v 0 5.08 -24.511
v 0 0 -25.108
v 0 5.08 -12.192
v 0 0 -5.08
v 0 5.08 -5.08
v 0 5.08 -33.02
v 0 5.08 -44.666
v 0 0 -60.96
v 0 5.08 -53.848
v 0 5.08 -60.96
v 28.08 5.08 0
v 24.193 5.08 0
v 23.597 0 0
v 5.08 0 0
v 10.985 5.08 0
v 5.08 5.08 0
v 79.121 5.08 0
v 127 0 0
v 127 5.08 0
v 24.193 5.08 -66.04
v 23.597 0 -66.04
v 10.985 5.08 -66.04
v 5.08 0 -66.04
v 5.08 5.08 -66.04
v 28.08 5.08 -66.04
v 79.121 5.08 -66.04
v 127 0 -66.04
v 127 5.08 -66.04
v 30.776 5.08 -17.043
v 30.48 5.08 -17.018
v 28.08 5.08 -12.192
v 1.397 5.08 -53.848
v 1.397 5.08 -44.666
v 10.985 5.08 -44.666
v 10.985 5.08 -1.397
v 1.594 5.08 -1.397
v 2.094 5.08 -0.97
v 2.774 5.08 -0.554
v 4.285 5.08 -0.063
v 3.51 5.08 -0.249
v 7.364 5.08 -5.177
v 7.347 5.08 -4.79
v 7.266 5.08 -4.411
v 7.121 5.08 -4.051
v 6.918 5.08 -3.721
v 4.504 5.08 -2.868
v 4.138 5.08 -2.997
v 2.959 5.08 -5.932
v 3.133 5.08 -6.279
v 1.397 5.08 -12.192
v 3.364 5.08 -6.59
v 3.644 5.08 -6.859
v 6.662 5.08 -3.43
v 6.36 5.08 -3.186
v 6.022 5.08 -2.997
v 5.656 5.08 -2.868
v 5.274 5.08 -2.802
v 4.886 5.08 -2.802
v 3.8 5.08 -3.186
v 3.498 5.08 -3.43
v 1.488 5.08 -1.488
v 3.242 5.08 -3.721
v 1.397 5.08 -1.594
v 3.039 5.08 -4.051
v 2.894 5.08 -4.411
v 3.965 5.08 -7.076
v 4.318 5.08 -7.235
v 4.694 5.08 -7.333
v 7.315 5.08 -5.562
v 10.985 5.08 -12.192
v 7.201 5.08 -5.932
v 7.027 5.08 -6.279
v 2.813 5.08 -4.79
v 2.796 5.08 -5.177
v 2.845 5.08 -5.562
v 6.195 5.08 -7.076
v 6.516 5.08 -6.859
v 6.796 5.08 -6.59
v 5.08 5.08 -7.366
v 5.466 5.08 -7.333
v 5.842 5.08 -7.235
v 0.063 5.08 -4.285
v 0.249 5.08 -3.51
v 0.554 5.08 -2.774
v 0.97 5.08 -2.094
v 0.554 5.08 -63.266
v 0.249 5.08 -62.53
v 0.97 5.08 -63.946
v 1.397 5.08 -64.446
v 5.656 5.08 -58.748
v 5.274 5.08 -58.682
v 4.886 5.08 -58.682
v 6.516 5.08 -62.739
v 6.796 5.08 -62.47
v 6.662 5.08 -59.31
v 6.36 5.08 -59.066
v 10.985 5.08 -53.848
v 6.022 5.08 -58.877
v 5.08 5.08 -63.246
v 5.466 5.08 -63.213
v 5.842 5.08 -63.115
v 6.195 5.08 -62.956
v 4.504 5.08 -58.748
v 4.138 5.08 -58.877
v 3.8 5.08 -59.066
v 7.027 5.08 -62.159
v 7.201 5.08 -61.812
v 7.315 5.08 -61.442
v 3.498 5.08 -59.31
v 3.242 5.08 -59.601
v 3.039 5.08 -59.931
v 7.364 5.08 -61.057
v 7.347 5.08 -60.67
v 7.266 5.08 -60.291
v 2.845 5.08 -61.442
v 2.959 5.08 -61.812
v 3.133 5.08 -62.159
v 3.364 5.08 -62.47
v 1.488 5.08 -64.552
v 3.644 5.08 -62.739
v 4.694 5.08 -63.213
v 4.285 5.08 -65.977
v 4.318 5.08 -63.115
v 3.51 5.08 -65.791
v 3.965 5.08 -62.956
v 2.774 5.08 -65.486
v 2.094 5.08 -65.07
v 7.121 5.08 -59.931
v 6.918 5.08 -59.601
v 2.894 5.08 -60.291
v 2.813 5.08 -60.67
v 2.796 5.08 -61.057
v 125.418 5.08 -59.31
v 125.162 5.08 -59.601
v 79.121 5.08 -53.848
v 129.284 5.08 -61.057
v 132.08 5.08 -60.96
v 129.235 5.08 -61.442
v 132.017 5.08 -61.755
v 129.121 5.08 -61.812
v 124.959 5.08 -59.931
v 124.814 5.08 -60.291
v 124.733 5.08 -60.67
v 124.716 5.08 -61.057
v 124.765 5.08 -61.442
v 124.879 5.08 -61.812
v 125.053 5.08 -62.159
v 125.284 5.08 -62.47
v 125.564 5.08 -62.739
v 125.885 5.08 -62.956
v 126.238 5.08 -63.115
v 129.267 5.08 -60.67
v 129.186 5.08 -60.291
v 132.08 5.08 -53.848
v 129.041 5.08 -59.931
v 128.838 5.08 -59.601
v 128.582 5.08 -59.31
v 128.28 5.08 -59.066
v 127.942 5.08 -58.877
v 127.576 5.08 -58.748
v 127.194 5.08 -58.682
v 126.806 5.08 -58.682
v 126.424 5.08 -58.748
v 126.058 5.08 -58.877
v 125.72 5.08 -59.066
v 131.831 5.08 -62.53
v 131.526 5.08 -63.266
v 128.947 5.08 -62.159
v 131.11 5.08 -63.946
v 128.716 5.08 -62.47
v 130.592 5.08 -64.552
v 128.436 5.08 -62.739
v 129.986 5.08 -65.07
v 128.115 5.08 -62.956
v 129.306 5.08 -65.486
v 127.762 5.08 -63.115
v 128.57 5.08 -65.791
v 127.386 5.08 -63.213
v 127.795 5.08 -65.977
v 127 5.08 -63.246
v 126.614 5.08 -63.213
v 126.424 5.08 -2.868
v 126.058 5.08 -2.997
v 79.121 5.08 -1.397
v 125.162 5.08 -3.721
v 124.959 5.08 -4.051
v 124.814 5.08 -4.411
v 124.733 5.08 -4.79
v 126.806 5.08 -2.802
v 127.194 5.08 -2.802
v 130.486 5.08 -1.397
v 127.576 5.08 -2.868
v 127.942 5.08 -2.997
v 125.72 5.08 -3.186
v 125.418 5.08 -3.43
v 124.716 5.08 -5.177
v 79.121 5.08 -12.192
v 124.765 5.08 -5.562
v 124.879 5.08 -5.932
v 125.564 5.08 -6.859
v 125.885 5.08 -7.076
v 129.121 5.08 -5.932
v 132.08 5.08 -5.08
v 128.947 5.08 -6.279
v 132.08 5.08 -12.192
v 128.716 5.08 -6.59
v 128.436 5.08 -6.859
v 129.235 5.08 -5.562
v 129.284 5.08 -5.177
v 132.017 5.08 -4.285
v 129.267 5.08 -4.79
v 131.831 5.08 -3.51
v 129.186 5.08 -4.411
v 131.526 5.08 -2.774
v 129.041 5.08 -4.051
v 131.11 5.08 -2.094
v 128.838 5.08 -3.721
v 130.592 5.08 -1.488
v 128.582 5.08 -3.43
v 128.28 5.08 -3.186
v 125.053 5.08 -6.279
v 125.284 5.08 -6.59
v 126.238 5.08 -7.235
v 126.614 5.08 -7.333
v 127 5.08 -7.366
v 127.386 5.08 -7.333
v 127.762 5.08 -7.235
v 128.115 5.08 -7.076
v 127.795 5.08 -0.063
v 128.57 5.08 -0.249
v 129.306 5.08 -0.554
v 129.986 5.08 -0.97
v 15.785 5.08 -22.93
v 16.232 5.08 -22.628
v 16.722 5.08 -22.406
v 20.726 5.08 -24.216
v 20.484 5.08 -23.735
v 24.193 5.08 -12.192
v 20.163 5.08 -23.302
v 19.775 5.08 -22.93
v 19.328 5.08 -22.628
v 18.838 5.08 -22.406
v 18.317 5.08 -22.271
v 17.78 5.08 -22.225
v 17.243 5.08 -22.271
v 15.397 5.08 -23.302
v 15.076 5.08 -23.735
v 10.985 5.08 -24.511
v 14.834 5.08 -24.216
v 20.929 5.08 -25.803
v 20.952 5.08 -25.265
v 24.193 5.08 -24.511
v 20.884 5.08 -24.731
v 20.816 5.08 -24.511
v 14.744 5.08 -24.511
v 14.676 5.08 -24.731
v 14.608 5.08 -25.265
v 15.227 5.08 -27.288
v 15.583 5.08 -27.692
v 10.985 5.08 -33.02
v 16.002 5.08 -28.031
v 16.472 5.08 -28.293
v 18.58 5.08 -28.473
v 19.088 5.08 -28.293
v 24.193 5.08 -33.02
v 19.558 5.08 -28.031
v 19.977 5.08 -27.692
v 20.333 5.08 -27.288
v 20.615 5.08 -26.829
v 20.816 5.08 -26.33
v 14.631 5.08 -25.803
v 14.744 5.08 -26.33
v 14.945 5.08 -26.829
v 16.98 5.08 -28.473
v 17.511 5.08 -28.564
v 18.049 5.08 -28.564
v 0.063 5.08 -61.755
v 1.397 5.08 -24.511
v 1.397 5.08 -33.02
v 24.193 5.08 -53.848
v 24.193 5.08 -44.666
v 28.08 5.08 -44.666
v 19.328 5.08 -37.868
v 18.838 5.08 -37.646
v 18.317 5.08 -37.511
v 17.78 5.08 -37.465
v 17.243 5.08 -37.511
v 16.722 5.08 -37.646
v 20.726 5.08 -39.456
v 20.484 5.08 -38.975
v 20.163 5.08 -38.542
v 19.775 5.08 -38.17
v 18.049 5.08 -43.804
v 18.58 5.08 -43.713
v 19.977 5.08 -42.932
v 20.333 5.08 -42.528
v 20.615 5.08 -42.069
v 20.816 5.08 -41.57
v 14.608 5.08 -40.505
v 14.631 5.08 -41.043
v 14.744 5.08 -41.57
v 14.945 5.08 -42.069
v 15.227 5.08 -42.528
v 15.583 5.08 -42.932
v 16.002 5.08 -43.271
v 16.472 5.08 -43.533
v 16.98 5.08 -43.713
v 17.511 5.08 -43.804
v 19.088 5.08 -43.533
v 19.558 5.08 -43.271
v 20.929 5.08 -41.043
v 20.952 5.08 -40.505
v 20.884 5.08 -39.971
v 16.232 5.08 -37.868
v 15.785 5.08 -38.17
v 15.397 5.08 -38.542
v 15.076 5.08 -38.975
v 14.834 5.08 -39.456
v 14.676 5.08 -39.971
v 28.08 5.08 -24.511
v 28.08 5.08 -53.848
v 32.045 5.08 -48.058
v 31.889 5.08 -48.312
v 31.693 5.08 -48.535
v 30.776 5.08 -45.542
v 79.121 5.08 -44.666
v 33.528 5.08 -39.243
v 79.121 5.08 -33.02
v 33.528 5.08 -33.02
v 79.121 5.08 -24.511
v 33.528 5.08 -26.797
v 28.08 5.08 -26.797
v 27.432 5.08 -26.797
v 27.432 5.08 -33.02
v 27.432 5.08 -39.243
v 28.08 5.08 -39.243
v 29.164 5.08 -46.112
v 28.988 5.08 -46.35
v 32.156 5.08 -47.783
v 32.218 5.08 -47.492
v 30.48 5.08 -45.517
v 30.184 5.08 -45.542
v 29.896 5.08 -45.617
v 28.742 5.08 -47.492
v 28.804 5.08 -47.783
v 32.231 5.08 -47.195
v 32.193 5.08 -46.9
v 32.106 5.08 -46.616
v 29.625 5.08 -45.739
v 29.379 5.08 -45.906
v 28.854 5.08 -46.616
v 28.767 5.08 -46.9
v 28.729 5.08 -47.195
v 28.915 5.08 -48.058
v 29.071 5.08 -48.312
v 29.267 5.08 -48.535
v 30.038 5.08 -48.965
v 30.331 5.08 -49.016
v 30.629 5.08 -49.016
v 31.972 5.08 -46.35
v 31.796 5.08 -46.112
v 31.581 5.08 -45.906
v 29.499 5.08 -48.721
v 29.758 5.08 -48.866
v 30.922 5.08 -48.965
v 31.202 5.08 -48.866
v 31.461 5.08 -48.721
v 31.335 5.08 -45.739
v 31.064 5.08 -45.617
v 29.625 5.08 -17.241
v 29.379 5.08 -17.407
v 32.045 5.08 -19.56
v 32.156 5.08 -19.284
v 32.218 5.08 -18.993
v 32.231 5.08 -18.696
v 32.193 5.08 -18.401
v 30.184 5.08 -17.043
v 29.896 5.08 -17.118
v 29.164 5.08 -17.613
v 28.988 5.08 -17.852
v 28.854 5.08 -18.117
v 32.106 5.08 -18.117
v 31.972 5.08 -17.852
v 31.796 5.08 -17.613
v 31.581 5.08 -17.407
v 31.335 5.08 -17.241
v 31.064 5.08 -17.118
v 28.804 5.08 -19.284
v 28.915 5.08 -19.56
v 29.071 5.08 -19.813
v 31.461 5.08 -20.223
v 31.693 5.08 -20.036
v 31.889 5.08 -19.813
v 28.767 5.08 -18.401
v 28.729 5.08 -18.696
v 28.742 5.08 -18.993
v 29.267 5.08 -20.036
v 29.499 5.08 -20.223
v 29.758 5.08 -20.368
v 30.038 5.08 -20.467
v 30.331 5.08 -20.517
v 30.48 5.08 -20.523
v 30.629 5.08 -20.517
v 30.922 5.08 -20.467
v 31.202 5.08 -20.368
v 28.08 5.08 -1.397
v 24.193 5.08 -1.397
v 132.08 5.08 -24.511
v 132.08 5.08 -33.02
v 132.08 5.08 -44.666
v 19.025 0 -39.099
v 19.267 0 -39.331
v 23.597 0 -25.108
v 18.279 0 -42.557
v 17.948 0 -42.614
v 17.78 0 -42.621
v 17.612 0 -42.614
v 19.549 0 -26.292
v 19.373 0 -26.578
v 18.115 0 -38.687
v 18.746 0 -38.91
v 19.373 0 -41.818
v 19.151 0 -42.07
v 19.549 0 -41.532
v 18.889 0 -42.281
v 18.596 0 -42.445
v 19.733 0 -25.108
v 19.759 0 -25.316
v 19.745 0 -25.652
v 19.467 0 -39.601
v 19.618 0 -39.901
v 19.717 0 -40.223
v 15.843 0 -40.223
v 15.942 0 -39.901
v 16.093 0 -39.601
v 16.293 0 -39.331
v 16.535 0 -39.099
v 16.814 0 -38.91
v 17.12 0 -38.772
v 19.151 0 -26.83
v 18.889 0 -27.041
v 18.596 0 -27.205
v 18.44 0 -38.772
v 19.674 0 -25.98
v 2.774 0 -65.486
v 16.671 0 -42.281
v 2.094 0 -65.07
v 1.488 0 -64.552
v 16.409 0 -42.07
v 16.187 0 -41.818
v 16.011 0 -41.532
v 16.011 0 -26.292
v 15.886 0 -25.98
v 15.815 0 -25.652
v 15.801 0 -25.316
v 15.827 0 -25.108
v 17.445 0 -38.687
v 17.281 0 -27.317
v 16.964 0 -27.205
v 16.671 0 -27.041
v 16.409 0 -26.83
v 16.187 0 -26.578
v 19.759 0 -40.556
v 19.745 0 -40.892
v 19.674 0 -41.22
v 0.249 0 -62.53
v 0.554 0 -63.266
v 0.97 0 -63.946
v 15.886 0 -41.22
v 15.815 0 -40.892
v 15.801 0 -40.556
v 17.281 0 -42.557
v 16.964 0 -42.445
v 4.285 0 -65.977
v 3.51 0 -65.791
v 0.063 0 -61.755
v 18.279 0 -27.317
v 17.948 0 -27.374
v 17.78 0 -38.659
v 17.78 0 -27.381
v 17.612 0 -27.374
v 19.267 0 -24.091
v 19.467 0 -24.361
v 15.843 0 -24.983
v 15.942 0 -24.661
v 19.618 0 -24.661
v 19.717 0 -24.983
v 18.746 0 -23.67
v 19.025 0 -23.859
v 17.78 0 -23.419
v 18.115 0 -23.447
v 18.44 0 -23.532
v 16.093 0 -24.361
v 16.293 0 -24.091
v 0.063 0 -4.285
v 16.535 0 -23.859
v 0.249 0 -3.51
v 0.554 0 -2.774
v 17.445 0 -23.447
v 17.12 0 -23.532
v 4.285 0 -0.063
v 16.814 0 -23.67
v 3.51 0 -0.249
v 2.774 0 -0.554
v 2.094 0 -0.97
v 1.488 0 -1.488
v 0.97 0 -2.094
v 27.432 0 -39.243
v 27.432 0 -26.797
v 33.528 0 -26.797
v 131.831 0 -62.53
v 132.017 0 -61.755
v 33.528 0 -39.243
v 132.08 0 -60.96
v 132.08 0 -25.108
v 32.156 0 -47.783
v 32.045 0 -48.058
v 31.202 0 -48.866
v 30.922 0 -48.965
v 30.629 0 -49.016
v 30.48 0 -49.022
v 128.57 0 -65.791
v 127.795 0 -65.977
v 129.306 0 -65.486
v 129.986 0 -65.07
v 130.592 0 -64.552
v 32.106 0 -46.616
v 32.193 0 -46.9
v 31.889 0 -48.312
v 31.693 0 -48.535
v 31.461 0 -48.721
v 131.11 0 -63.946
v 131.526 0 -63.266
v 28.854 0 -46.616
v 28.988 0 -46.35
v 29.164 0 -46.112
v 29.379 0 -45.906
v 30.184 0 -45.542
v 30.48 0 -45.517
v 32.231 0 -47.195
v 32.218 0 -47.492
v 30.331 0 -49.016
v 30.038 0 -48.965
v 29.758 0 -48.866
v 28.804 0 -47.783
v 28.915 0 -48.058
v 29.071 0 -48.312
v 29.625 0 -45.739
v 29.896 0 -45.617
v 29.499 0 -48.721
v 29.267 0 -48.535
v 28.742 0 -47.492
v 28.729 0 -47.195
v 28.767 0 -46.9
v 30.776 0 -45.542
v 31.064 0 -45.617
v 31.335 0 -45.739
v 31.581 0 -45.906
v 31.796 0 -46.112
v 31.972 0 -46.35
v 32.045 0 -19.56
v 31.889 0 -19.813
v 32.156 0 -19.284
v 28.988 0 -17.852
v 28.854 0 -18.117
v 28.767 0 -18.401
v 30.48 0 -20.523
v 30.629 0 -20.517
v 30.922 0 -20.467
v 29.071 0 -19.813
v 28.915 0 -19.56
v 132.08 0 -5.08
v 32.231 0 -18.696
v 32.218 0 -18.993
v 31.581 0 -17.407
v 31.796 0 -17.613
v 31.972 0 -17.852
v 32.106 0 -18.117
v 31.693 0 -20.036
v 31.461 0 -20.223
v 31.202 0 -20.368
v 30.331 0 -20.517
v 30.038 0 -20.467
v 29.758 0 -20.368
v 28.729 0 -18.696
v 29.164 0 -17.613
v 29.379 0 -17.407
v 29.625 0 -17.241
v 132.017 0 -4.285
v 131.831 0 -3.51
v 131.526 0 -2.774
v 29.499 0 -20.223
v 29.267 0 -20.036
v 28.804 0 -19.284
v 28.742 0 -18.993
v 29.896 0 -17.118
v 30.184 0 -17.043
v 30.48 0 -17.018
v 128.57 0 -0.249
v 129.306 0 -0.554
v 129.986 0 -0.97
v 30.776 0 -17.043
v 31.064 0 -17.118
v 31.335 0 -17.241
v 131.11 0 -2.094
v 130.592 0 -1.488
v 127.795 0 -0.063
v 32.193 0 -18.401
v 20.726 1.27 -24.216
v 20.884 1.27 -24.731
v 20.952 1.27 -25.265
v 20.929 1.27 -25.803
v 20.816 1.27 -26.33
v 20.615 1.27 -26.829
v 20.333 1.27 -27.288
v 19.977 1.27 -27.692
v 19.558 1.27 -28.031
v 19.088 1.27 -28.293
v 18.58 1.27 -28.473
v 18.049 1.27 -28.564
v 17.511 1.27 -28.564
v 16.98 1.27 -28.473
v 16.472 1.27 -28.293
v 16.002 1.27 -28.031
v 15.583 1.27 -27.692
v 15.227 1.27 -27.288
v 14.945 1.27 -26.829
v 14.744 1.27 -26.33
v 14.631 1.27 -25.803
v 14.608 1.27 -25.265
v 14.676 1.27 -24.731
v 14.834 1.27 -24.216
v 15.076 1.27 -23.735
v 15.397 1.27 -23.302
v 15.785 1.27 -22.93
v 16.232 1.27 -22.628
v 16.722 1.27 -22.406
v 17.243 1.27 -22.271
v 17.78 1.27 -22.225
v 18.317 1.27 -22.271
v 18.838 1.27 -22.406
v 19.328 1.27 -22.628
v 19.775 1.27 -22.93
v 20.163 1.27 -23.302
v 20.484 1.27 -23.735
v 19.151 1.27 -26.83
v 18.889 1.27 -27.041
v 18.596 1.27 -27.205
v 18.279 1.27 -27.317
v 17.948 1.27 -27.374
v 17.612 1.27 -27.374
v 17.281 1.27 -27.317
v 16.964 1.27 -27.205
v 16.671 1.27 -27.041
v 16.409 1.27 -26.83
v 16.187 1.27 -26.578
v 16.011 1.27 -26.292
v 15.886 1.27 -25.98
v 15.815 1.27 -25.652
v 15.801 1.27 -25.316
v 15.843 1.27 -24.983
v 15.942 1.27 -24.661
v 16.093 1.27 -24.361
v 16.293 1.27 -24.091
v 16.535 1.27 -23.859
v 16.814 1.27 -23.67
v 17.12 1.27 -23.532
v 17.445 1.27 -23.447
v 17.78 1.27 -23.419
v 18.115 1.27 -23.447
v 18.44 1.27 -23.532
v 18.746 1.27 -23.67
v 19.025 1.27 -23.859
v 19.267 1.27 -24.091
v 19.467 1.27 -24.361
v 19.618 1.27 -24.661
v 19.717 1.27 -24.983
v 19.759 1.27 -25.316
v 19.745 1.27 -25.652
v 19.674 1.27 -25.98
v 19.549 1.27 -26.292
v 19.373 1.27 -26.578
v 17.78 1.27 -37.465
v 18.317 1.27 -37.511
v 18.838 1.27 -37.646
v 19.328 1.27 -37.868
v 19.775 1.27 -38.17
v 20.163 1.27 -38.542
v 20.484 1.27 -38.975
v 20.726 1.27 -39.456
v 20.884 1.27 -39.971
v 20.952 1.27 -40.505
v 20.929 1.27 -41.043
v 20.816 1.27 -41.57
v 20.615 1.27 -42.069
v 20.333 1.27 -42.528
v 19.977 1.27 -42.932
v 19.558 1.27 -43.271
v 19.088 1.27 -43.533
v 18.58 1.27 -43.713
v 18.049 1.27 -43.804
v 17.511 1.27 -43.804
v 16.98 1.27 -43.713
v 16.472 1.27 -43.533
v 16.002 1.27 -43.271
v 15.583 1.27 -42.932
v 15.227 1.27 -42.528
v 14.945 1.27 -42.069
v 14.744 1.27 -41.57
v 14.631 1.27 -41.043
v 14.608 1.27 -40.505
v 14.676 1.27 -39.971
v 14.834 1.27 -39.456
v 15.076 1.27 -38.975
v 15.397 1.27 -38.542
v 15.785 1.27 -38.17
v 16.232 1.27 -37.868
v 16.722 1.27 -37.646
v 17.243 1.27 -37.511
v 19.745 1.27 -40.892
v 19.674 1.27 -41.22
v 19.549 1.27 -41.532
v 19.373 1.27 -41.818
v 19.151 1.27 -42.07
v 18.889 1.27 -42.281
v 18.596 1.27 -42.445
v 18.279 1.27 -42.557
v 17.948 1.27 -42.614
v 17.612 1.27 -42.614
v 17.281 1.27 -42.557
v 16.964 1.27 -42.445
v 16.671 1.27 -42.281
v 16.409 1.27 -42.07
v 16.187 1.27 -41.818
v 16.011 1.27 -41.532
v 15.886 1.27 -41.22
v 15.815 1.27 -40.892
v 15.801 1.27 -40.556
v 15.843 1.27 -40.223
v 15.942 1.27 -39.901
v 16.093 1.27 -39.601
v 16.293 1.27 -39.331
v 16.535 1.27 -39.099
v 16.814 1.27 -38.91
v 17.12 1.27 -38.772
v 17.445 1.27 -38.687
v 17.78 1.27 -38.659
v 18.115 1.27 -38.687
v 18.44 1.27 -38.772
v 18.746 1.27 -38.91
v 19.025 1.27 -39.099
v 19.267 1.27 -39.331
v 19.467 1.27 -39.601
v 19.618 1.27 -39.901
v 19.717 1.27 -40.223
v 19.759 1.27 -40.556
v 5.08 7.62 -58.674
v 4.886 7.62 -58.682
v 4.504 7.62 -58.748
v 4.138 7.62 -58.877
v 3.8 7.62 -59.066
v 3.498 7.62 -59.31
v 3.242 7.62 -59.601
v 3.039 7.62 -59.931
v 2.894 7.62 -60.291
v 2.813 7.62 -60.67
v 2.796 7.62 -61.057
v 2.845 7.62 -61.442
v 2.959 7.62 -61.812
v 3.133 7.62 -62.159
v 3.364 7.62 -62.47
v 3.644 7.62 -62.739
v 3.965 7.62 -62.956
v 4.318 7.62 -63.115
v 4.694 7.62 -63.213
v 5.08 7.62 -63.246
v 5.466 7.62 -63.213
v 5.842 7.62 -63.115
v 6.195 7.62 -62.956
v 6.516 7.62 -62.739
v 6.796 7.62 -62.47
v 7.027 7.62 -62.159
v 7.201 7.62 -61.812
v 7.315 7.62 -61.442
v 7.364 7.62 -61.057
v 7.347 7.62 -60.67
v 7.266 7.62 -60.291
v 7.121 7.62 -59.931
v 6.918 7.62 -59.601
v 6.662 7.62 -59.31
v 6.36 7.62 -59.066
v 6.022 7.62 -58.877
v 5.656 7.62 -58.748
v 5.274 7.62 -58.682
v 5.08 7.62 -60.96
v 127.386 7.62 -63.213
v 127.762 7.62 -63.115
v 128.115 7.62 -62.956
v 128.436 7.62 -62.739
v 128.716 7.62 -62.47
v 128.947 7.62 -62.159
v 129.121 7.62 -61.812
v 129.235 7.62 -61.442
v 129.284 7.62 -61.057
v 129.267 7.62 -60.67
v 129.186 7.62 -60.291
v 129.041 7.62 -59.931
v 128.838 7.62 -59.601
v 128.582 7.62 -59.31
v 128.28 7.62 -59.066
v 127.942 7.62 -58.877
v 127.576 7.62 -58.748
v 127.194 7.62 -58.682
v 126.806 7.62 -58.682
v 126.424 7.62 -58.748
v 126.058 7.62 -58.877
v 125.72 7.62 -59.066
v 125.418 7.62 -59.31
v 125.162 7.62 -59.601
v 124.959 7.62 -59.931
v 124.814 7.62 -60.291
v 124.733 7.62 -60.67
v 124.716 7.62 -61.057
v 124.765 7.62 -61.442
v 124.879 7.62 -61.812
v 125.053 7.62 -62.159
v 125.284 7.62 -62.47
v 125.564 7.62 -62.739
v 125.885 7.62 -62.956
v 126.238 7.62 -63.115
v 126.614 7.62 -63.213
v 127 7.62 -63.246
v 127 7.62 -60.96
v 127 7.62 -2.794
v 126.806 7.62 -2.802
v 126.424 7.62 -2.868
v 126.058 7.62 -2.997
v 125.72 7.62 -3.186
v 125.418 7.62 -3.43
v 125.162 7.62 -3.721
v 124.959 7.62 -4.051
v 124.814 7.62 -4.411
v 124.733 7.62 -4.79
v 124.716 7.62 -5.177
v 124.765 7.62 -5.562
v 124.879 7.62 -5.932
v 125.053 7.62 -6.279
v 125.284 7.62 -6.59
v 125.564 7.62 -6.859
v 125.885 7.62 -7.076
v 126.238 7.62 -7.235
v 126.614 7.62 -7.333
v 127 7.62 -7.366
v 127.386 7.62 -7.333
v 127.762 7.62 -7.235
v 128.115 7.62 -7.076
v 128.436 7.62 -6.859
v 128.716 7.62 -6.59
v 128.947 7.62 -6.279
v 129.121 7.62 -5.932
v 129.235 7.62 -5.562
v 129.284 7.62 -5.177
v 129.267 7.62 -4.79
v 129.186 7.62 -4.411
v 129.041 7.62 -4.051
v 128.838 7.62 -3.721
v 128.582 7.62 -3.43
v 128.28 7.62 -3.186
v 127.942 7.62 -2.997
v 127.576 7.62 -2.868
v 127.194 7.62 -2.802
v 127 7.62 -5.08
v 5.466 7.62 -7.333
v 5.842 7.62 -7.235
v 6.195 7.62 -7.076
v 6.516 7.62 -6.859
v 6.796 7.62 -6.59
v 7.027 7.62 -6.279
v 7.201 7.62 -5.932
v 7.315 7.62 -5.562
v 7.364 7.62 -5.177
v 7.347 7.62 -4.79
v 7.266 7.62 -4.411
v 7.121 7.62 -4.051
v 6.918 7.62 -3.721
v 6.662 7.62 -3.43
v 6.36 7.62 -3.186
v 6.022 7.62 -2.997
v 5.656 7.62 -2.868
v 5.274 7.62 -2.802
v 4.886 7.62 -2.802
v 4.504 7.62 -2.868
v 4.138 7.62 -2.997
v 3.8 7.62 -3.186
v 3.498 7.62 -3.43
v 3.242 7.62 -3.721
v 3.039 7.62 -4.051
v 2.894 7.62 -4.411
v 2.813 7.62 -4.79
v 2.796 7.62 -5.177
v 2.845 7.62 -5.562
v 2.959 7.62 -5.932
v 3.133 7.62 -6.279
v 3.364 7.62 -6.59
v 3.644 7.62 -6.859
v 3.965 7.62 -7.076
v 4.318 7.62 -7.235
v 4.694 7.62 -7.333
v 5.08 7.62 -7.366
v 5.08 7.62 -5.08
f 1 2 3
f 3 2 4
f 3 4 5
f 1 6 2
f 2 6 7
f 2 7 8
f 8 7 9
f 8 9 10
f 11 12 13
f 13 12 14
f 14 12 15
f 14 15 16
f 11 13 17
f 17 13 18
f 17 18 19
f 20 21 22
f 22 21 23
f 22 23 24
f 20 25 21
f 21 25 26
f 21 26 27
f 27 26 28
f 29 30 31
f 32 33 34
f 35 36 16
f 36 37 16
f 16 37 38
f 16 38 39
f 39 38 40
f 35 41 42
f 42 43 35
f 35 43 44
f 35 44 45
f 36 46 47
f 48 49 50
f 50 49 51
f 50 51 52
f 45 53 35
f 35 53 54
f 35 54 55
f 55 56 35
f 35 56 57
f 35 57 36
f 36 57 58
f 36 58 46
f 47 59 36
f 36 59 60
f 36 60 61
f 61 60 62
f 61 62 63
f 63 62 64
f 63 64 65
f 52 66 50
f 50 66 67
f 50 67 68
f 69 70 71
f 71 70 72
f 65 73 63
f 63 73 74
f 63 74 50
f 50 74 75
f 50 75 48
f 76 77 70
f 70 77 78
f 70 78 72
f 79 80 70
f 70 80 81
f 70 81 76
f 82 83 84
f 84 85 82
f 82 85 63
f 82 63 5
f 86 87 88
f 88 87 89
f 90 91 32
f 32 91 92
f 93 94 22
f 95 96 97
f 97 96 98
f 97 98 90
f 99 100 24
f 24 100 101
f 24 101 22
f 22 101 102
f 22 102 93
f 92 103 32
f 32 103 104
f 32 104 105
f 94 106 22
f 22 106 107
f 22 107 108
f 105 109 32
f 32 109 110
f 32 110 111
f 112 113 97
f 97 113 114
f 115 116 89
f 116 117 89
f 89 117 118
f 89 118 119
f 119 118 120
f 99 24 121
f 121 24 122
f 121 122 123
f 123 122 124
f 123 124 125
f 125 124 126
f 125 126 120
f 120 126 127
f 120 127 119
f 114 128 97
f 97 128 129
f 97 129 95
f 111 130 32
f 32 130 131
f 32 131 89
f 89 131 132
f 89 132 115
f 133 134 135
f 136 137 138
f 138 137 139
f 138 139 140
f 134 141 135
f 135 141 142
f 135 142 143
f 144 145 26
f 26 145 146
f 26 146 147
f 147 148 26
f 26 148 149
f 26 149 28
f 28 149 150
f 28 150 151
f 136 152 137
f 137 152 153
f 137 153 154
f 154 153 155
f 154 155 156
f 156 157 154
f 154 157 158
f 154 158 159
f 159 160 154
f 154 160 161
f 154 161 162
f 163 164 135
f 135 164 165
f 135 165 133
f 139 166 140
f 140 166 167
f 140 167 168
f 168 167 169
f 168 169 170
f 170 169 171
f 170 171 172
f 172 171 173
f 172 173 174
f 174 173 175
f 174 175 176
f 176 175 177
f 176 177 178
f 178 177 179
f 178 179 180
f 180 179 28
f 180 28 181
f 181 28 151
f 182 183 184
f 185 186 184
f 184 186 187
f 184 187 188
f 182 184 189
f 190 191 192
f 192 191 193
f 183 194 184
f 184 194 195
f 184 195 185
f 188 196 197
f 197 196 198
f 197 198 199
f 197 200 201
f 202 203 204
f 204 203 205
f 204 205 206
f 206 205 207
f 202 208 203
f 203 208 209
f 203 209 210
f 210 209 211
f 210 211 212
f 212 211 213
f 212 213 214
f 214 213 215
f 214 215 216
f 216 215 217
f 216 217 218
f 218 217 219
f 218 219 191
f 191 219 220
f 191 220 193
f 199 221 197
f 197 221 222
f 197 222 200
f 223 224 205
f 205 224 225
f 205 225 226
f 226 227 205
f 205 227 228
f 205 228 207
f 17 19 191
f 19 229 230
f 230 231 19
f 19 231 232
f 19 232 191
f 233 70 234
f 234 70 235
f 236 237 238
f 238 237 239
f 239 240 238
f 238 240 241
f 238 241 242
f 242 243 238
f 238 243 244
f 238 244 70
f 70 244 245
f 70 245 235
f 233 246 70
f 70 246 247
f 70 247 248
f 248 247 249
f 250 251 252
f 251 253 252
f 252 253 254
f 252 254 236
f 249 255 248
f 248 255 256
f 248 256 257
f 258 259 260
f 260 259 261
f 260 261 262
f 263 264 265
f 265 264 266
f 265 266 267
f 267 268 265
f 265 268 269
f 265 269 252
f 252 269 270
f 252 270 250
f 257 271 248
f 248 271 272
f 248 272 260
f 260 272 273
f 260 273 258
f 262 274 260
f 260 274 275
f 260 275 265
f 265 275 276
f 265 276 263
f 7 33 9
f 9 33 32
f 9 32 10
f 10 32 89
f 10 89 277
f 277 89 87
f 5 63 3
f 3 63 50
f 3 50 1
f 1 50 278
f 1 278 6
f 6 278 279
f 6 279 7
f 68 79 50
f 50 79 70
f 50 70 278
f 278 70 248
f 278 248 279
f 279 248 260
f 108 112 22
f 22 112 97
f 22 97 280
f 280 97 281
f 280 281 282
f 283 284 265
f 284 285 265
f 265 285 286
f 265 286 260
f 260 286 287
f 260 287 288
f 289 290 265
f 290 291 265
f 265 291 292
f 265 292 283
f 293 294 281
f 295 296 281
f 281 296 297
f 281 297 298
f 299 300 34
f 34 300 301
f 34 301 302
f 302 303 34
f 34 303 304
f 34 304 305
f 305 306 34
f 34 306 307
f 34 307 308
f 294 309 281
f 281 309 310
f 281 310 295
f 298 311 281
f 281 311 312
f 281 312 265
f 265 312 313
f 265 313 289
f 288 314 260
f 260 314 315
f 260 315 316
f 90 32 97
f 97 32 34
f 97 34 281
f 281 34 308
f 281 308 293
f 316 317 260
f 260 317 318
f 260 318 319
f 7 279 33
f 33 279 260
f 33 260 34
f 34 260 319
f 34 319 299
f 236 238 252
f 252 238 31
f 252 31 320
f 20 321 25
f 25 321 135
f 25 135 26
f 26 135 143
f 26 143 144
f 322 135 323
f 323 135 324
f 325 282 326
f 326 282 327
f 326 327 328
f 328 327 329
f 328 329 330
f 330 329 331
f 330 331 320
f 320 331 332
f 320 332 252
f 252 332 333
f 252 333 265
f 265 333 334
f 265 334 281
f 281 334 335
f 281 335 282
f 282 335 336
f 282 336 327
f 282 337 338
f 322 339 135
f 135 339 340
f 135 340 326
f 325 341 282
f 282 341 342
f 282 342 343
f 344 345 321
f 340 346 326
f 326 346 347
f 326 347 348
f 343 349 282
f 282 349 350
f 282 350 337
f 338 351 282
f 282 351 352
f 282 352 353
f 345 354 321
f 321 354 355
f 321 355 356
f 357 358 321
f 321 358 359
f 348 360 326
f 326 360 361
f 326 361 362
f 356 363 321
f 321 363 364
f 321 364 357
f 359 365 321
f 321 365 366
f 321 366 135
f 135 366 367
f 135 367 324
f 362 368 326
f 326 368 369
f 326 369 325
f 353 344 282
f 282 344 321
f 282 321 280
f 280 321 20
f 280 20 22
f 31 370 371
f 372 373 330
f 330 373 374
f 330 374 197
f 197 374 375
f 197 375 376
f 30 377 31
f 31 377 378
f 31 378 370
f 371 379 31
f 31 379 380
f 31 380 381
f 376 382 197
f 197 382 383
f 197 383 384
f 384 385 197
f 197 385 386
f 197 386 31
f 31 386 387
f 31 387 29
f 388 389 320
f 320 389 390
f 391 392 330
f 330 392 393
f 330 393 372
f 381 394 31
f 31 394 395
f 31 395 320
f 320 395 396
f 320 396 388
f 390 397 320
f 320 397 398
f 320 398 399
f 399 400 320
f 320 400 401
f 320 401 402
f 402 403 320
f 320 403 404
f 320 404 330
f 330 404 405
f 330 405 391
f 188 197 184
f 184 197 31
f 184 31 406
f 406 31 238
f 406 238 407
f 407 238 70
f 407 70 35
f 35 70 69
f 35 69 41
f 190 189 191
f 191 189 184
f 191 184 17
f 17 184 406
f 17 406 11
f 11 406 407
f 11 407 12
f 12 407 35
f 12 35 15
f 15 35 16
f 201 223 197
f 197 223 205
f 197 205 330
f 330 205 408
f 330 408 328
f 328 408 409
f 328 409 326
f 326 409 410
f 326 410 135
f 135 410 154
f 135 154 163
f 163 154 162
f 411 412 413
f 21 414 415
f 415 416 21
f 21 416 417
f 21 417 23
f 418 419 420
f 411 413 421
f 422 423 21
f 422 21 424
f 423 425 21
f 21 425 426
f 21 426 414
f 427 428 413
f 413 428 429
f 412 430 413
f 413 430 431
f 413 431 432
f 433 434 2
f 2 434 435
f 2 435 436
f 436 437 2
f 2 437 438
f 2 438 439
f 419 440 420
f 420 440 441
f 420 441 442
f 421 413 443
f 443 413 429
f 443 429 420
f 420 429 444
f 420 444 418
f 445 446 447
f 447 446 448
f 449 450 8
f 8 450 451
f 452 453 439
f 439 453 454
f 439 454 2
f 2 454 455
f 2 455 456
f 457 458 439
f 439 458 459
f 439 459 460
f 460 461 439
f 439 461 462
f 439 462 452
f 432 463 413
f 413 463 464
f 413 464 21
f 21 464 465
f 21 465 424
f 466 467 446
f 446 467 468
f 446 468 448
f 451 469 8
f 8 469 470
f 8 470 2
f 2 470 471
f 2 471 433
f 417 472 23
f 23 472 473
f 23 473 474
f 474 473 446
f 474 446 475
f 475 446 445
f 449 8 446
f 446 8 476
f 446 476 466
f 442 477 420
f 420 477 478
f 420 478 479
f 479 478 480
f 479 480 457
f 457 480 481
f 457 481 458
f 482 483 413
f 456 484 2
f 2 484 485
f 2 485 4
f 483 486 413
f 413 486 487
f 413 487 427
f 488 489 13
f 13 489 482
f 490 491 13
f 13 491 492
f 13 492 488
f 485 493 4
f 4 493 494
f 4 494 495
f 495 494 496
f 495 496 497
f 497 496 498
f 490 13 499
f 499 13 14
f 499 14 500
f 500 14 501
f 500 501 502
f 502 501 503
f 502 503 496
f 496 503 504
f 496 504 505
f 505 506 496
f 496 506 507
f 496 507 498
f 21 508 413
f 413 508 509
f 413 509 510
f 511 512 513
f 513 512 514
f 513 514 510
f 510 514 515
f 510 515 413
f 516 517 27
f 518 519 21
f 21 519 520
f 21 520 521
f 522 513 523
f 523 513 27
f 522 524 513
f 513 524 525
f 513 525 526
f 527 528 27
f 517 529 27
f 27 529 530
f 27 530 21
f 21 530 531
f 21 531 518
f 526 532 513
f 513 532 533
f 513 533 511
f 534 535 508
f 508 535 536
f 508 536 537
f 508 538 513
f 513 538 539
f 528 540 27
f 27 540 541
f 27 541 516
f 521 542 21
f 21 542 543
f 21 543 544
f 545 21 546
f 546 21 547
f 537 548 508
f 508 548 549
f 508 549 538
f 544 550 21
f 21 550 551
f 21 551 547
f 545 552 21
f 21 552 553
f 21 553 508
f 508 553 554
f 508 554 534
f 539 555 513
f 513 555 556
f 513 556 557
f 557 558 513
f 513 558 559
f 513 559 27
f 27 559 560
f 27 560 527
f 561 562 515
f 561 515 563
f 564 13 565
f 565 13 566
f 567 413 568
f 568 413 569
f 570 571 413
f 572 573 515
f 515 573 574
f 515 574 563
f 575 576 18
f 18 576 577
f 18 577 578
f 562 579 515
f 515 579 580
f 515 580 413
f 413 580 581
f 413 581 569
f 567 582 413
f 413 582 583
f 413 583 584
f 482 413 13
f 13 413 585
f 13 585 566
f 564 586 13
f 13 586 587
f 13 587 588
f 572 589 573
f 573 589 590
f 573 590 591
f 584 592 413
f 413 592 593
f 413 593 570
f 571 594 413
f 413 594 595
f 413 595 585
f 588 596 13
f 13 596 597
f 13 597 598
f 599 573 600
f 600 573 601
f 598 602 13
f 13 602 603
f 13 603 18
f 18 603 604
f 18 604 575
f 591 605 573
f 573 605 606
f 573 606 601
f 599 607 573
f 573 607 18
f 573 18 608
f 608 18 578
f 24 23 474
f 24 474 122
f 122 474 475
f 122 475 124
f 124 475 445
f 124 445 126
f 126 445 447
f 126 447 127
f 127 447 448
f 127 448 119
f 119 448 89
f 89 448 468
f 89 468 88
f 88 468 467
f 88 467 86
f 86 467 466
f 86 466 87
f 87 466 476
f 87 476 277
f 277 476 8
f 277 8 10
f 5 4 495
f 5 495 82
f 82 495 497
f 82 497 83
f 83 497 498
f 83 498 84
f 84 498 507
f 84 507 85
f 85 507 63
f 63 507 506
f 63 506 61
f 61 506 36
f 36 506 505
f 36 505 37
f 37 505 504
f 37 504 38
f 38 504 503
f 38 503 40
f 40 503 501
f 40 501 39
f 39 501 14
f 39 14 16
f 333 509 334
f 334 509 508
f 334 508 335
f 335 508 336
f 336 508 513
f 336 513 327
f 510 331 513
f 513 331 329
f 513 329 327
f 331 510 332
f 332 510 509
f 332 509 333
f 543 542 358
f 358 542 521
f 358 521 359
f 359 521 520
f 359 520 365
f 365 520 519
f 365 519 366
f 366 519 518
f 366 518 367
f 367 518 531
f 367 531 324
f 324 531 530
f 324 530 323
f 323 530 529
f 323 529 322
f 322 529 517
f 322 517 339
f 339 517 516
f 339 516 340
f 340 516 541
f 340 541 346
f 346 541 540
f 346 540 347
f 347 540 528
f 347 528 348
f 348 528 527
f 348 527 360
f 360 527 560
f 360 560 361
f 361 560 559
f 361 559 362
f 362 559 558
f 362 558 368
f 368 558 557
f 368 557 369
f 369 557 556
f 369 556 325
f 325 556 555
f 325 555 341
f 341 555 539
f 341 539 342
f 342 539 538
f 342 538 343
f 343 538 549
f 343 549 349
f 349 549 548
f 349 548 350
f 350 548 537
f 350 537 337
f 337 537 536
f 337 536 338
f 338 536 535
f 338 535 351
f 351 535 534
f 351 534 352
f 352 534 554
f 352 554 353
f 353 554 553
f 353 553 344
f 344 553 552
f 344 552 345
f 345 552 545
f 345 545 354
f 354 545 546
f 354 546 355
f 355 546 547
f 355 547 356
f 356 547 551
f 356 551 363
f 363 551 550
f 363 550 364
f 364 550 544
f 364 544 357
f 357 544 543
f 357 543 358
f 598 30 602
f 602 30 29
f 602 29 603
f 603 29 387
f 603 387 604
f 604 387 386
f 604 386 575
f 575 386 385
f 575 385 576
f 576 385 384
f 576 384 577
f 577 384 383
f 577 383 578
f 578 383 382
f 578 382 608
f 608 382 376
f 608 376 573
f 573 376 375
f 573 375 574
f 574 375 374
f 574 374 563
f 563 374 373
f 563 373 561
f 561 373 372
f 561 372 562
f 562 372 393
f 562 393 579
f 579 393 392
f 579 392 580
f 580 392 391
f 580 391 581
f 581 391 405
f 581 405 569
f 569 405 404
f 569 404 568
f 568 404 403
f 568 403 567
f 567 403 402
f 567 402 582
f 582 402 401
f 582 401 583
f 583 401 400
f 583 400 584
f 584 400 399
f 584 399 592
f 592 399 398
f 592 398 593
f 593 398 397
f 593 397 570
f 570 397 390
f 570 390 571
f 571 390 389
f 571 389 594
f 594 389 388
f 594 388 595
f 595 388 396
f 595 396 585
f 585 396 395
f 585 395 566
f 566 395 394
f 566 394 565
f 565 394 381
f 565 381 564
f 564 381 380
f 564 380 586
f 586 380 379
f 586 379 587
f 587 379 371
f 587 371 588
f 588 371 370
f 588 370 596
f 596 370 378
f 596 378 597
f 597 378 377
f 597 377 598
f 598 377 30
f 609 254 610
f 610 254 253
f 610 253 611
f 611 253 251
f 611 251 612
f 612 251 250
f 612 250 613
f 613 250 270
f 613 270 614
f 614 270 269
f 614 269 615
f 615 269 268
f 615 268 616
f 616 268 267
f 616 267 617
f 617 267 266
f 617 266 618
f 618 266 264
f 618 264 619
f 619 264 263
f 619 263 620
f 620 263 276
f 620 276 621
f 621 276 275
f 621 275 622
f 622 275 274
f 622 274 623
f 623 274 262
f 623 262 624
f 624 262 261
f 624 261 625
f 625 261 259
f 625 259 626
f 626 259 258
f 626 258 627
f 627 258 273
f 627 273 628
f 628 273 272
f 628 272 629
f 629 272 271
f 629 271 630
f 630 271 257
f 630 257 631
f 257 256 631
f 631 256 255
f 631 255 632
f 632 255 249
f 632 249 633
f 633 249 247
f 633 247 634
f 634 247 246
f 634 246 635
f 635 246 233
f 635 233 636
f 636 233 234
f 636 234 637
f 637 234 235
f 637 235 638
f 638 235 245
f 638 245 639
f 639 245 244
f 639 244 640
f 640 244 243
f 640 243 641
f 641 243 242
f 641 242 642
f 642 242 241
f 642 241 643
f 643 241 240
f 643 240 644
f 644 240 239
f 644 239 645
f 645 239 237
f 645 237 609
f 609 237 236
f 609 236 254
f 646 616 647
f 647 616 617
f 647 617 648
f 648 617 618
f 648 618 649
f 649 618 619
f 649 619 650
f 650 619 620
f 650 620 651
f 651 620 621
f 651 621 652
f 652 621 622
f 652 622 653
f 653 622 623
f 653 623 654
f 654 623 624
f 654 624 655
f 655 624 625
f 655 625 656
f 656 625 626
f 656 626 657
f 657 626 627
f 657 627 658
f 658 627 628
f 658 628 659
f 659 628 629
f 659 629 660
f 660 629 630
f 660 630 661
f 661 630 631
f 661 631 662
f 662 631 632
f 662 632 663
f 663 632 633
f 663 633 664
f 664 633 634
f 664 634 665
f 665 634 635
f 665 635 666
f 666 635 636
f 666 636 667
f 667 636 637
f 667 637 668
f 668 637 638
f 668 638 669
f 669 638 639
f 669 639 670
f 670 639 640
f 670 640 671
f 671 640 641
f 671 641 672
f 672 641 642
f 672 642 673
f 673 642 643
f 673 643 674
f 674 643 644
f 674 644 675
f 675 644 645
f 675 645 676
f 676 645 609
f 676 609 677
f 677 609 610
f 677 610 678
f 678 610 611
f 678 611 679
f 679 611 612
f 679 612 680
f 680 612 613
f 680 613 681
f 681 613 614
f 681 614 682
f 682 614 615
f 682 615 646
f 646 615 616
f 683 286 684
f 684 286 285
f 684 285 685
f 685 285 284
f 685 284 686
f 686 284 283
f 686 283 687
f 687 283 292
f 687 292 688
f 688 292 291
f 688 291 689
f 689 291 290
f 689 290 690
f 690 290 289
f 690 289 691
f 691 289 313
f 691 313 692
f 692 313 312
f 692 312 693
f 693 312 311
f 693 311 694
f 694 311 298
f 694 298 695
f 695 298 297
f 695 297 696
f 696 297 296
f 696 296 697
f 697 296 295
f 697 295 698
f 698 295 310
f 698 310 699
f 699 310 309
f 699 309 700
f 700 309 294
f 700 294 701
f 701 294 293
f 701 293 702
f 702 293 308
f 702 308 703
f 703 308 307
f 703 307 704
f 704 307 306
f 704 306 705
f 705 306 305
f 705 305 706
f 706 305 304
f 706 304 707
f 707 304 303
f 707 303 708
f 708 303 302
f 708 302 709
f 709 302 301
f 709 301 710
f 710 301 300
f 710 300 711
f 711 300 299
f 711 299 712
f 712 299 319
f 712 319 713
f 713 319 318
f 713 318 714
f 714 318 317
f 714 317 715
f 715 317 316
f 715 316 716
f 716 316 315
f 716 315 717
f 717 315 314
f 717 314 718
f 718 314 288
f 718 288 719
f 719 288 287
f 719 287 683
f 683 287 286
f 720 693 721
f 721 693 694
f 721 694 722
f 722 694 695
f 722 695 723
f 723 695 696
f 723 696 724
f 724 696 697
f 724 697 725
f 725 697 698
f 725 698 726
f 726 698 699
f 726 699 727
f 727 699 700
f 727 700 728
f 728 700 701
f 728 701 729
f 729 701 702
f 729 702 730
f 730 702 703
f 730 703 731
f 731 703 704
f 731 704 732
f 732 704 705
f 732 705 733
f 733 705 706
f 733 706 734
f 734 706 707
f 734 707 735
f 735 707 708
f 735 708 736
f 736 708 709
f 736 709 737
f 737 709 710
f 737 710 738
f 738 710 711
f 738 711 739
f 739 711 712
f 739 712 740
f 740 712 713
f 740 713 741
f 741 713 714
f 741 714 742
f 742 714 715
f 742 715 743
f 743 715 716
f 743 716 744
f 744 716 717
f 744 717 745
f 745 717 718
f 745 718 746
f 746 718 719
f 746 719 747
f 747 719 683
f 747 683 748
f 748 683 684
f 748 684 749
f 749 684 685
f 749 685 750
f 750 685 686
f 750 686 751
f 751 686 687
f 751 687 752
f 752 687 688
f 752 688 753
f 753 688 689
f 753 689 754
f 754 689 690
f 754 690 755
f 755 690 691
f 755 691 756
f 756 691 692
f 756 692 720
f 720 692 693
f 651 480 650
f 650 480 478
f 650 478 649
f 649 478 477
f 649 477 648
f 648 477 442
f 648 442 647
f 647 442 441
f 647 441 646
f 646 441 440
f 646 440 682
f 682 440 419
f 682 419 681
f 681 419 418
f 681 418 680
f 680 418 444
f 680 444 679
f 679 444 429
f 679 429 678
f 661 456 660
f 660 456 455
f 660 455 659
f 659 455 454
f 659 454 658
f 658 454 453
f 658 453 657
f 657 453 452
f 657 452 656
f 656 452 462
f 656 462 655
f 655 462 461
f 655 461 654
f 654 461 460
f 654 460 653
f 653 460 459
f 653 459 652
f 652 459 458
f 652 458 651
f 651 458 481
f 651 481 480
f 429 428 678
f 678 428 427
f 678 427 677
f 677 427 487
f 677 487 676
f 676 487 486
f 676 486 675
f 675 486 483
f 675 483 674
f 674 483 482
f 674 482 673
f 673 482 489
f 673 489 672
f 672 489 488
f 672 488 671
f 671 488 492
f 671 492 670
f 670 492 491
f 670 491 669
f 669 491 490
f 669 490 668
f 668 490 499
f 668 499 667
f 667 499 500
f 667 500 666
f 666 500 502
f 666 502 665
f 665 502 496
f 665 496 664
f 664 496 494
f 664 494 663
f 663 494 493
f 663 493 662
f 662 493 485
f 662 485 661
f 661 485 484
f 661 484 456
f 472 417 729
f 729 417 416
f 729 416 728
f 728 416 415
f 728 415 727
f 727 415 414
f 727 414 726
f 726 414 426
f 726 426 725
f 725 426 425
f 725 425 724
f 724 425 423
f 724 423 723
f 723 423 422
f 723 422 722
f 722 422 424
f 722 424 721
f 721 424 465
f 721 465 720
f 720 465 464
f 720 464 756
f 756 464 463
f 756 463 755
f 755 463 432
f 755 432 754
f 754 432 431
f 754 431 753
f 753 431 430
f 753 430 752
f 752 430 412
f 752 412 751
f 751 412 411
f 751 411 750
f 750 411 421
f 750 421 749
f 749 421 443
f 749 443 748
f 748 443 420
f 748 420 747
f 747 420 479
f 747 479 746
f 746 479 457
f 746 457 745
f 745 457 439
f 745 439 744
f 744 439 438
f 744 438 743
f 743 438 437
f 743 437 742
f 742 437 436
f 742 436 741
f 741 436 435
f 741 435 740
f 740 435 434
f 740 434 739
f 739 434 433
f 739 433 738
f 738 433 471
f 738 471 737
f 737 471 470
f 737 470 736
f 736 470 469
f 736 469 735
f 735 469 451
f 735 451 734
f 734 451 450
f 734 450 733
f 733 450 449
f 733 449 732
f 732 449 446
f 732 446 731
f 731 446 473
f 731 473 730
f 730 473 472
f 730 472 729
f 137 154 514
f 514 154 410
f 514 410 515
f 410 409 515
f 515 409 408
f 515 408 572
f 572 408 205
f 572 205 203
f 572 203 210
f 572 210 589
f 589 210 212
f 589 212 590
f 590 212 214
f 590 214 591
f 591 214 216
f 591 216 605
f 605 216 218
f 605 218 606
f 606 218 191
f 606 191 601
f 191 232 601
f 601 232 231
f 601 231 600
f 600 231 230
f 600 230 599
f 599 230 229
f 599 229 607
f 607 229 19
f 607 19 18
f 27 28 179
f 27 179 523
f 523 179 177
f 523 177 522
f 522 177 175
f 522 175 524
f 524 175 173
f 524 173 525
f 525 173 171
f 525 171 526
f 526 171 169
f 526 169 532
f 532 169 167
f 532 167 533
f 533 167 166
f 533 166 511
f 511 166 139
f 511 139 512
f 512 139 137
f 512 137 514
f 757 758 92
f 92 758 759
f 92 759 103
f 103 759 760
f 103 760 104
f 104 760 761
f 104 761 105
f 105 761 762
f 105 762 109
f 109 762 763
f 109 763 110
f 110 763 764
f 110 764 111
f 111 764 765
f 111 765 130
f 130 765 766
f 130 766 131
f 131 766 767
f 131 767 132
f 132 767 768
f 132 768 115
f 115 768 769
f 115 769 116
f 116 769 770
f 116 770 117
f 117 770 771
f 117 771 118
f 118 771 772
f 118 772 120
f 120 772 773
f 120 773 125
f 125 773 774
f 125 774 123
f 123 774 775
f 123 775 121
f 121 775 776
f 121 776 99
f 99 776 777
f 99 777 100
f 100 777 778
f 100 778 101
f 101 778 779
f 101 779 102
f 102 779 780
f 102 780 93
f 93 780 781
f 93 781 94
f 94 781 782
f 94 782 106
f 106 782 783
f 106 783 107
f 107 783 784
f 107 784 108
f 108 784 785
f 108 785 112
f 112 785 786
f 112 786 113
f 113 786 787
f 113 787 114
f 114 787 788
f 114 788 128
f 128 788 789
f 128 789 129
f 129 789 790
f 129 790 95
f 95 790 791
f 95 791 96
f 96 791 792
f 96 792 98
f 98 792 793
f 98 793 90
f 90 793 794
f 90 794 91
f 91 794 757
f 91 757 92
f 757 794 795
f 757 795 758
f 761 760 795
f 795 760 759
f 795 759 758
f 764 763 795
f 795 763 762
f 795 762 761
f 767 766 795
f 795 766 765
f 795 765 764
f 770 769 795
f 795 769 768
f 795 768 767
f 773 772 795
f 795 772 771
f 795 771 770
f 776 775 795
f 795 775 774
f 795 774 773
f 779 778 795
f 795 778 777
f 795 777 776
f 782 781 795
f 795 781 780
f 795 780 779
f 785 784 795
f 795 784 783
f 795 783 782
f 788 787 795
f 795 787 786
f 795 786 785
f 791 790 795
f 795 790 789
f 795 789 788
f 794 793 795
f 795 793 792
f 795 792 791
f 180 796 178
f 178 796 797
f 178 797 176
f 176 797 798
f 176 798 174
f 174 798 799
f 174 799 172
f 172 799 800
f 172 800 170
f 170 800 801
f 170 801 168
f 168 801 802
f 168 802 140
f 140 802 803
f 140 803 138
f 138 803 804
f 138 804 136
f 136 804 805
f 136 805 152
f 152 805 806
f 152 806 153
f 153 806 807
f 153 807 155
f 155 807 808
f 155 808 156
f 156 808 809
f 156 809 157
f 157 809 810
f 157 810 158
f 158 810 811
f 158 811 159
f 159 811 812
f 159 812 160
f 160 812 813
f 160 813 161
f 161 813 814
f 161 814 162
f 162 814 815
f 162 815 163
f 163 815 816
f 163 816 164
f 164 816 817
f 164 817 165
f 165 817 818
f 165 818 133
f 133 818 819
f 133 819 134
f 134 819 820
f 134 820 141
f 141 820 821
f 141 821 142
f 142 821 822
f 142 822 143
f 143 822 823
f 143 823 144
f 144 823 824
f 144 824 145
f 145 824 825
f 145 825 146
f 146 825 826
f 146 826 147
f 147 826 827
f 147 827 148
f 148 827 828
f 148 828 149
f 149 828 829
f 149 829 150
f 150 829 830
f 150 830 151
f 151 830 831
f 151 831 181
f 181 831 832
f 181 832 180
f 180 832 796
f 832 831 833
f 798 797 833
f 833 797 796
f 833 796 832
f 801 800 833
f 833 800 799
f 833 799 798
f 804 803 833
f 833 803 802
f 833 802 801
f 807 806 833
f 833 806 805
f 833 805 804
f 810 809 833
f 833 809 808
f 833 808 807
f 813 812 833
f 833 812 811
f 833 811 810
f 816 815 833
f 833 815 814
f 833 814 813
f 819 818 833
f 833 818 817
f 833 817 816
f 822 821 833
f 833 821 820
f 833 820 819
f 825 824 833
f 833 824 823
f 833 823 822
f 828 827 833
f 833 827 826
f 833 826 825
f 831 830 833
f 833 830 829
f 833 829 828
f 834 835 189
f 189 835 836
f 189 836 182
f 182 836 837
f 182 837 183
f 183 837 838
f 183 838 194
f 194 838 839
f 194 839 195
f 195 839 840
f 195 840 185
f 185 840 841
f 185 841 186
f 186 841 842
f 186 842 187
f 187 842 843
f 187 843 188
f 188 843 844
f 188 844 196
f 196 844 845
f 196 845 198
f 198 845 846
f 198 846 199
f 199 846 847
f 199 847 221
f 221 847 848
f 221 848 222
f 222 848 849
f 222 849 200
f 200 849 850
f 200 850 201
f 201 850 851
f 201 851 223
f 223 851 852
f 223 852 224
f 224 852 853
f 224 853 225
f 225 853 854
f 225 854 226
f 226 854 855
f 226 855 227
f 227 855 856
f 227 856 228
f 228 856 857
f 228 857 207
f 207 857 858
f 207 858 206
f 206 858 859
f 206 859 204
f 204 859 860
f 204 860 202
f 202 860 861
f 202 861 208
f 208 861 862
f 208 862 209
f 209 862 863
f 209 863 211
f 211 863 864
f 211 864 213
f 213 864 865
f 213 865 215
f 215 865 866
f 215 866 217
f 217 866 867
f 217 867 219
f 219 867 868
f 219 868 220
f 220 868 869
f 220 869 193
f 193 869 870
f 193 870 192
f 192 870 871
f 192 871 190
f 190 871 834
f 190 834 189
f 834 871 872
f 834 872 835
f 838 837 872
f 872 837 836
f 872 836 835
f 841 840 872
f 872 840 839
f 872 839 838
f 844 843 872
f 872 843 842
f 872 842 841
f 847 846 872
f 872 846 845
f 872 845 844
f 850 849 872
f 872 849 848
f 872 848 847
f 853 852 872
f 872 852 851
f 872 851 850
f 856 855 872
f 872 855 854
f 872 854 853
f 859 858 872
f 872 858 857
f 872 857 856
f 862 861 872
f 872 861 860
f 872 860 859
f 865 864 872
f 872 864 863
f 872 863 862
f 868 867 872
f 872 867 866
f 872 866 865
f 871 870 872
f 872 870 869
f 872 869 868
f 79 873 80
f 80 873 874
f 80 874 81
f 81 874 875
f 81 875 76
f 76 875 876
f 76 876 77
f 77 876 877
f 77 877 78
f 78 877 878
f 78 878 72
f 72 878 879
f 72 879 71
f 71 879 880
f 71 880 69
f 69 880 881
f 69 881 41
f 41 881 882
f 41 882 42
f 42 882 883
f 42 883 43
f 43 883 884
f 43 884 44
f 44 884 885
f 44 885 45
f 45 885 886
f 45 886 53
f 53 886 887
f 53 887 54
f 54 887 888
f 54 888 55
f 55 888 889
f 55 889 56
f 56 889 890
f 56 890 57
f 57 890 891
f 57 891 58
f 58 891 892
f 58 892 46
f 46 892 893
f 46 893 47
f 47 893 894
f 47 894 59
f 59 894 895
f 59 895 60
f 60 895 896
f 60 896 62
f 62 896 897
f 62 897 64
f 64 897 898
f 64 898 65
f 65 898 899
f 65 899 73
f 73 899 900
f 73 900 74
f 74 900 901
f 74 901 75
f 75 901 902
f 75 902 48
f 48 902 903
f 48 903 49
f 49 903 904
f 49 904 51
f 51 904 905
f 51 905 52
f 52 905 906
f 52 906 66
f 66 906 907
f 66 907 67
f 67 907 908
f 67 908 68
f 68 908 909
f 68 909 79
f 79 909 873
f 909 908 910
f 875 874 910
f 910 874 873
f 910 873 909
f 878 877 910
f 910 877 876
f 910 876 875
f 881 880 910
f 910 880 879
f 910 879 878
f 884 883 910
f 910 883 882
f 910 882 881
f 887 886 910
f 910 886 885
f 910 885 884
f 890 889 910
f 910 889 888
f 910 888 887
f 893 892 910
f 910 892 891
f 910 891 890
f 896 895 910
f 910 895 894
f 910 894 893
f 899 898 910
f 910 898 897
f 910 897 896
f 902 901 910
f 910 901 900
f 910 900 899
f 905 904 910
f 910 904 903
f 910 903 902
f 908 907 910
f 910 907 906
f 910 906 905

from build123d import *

# Parameters (mm, degrees)
SKETCH1_W           = 121.92
SKETCH1_H           = 66.04
BOSS_EXTRUDE1_DEPTH = 5.08
FILLET1_R           = 5.08
CUT_EXTRUDE2_REACH  = 140.75
SKETCH2_R           = 1.7526
SKETCH2_W           = 6.096
SKETCH2_H           = 12.446
SKETCH3_R           = 3.175
CUT_EXTRUDE3_DEPTH  = 3.81
CUT_EXTRUDE4_REACH  = 140.709
SKETCH4_R           = 1.9812
SKETCH8_W           = 15.24
SKETCH8_H           = 66.04
BOSS_EXTRUDE2_DEPTH = 5.08
FILLET4_R           = 5.08
SKETCH5_R           = 2.286
BOSS_EXTRUDE3_DEPTH = 2.54


with BuildPart() as part:
    # Sketch1 → Boss-Extrude1 (new body)
    with BuildSketch(Plane(origin=(0, 0, 0), x_dir=(1, 0, 0), z_dir=(0, 1, 0))):
        with Locations((60.96, 33.02)):
            Rectangle(SKETCH1_W, SKETCH1_H)
    extrude(amount=BOSS_EXTRUDE1_DEPTH)

    # Fillet1
    fillet1_edges = [part.edges().sort_by_distance(p)[0] for p in [
        (0, 2.54, -66.04),
        (121.92, 2.54, -66.04),
        (121.92, 2.54, 0),
        (0, 2.54, 0),
    ]]
    fillet(fillet1_edges, radius=FILLET1_R)

    # Sketch2 → Cut-Extrude2 (cut, up to next)
    with BuildSketch(Plane(origin=(0, 5.08, 0), x_dir=(1, 0, 0), z_dir=(0, 1, 0)), mode=Mode.PRIVATE) as cut_extrude2_sk1:
        with Locations(Location((30.48, 47.2694, 0), (0, 0, 270))):
            Circle(SKETCH2_R)
    cut_extrude2_tool1 = extrude(cut_extrude2_sk1.sketch, amount=-CUT_EXTRUDE2_REACH, mode=Mode.PRIVATE) & part.part
    # Sketch2 → Cut-Extrude2 (cut, up to next)
    with BuildSketch(Plane(origin=(0, 5.08, 0), x_dir=(1, 0, 0), z_dir=(0, 1, 0)), mode=Mode.PRIVATE) as cut_extrude2_sk2:
        with Locations(Location((30.48, 18.7706, 0), (0, 0, 90))):
            Circle(SKETCH2_R)
    cut_extrude2_tool2 = extrude(cut_extrude2_sk2.sketch, amount=-CUT_EXTRUDE2_REACH, mode=Mode.PRIVATE) & part.part
    # Sketch2 → Cut-Extrude2 (cut, up to next)
    with BuildSketch(Plane(origin=(0, 5.08, 0), x_dir=(1, 0, 0), z_dir=(0, 1, 0)), mode=Mode.PRIVATE) as cut_extrude2_sk3:
        with Locations((30.48, 33.02)):
            Rectangle(SKETCH2_W, SKETCH2_H)
    cut_extrude2_tool3 = extrude(cut_extrude2_sk3.sketch, amount=-CUT_EXTRUDE2_REACH, mode=Mode.PRIVATE) & part.part
    add(cut_extrude2_tool1.solids().sort_by_distance((30.48, 5.08, -47.2694))[0], mode=Mode.SUBTRACT)
    add(cut_extrude2_tool2.solids().sort_by_distance((30.48, 5.08, -18.7706))[0], mode=Mode.SUBTRACT)
    add(cut_extrude2_tool3.solids().sort_by_distance((30.48, 5.08, -33.02))[0], mode=Mode.SUBTRACT)

    # Sketch3 → Cut-Extrude3 (cut)
    with BuildSketch(Plane(origin=(0, 5.08, 0), x_dir=(1, 0, 0), z_dir=(0, 1, 0))):
        with Locations(Location((17.78, 40.64, 0), (0, 0, 270))):
            Circle(SKETCH3_R)
        with Locations(Location((17.78, 25.4, 0), (0, 0, 270))):
            Circle(SKETCH3_R)
    extrude(amount=-CUT_EXTRUDE3_DEPTH, mode=Mode.SUBTRACT)

    # Sketch4 → Cut-Extrude4 (cut, up to next)
    with BuildSketch(Plane(origin=(0, 1.27, 0), x_dir=(1, 0, 0), z_dir=(0, 1, 0)), mode=Mode.PRIVATE) as cut_extrude4_sk1:
        with Locations(Location((17.78, 40.64, 0), (0, 0, 270))):
            Circle(SKETCH4_R)
    cut_extrude4_tool1 = extrude(cut_extrude4_sk1.sketch, amount=-CUT_EXTRUDE4_REACH, mode=Mode.PRIVATE) & part.part
    # Sketch4 → Cut-Extrude4 (cut, up to next)
    with BuildSketch(Plane(origin=(0, 1.27, 0), x_dir=(1, 0, 0), z_dir=(0, 1, 0)), mode=Mode.PRIVATE) as cut_extrude4_sk2:
        with Locations(Location((17.78, 25.4, 0), (0, 0, 270))):
            Circle(SKETCH4_R)
    cut_extrude4_tool2 = extrude(cut_extrude4_sk2.sketch, amount=-CUT_EXTRUDE4_REACH, mode=Mode.PRIVATE) & part.part
    add(cut_extrude4_tool1.solids().sort_by_distance((17.78, 1.27, -40.64))[0], mode=Mode.SUBTRACT)
    add(cut_extrude4_tool2.solids().sort_by_distance((17.78, 1.27, -25.4))[0], mode=Mode.SUBTRACT)

    # Sketch8 → Boss-Extrude2 (add)
    with BuildSketch(Plane.XZ):
        with Locations((124.46, -33.02)):
            Rectangle(SKETCH8_W, SKETCH8_H)
    extrude(amount=-BOSS_EXTRUDE2_DEPTH)

    # Fillet4
    fillet4_edges = [part.edges().sort_by_distance(p)[0] for p in [
        (132.08, 2.54, 0),
        (132.08, 2.54, -66.04),
    ]]
    fillet(fillet4_edges, radius=FILLET4_R)

    # Sketch5 → Boss-Extrude3 (add)
    with BuildSketch(Plane(origin=(0, 5.08, 0), x_dir=(1, 0, 0), z_dir=(0, 1, 0))):
        with Locations(Location((5.08, 60.96, 0), (0, 0, 90))):
            Circle(SKETCH5_R)
        with Locations(Location((127, 60.96, 0), (0, 0, 90))):
            Circle(SKETCH5_R)
        with Locations(Location((127, 5.08, 0), (0, 0, 90))):
            Circle(SKETCH5_R)
        with Locations(Location((5.08, 5.08, 0), (0, 0, 90))):
            Circle(SKETCH5_R)
    extrude(amount=BOSS_EXTRUDE3_DEPTH)


solid = part.part
